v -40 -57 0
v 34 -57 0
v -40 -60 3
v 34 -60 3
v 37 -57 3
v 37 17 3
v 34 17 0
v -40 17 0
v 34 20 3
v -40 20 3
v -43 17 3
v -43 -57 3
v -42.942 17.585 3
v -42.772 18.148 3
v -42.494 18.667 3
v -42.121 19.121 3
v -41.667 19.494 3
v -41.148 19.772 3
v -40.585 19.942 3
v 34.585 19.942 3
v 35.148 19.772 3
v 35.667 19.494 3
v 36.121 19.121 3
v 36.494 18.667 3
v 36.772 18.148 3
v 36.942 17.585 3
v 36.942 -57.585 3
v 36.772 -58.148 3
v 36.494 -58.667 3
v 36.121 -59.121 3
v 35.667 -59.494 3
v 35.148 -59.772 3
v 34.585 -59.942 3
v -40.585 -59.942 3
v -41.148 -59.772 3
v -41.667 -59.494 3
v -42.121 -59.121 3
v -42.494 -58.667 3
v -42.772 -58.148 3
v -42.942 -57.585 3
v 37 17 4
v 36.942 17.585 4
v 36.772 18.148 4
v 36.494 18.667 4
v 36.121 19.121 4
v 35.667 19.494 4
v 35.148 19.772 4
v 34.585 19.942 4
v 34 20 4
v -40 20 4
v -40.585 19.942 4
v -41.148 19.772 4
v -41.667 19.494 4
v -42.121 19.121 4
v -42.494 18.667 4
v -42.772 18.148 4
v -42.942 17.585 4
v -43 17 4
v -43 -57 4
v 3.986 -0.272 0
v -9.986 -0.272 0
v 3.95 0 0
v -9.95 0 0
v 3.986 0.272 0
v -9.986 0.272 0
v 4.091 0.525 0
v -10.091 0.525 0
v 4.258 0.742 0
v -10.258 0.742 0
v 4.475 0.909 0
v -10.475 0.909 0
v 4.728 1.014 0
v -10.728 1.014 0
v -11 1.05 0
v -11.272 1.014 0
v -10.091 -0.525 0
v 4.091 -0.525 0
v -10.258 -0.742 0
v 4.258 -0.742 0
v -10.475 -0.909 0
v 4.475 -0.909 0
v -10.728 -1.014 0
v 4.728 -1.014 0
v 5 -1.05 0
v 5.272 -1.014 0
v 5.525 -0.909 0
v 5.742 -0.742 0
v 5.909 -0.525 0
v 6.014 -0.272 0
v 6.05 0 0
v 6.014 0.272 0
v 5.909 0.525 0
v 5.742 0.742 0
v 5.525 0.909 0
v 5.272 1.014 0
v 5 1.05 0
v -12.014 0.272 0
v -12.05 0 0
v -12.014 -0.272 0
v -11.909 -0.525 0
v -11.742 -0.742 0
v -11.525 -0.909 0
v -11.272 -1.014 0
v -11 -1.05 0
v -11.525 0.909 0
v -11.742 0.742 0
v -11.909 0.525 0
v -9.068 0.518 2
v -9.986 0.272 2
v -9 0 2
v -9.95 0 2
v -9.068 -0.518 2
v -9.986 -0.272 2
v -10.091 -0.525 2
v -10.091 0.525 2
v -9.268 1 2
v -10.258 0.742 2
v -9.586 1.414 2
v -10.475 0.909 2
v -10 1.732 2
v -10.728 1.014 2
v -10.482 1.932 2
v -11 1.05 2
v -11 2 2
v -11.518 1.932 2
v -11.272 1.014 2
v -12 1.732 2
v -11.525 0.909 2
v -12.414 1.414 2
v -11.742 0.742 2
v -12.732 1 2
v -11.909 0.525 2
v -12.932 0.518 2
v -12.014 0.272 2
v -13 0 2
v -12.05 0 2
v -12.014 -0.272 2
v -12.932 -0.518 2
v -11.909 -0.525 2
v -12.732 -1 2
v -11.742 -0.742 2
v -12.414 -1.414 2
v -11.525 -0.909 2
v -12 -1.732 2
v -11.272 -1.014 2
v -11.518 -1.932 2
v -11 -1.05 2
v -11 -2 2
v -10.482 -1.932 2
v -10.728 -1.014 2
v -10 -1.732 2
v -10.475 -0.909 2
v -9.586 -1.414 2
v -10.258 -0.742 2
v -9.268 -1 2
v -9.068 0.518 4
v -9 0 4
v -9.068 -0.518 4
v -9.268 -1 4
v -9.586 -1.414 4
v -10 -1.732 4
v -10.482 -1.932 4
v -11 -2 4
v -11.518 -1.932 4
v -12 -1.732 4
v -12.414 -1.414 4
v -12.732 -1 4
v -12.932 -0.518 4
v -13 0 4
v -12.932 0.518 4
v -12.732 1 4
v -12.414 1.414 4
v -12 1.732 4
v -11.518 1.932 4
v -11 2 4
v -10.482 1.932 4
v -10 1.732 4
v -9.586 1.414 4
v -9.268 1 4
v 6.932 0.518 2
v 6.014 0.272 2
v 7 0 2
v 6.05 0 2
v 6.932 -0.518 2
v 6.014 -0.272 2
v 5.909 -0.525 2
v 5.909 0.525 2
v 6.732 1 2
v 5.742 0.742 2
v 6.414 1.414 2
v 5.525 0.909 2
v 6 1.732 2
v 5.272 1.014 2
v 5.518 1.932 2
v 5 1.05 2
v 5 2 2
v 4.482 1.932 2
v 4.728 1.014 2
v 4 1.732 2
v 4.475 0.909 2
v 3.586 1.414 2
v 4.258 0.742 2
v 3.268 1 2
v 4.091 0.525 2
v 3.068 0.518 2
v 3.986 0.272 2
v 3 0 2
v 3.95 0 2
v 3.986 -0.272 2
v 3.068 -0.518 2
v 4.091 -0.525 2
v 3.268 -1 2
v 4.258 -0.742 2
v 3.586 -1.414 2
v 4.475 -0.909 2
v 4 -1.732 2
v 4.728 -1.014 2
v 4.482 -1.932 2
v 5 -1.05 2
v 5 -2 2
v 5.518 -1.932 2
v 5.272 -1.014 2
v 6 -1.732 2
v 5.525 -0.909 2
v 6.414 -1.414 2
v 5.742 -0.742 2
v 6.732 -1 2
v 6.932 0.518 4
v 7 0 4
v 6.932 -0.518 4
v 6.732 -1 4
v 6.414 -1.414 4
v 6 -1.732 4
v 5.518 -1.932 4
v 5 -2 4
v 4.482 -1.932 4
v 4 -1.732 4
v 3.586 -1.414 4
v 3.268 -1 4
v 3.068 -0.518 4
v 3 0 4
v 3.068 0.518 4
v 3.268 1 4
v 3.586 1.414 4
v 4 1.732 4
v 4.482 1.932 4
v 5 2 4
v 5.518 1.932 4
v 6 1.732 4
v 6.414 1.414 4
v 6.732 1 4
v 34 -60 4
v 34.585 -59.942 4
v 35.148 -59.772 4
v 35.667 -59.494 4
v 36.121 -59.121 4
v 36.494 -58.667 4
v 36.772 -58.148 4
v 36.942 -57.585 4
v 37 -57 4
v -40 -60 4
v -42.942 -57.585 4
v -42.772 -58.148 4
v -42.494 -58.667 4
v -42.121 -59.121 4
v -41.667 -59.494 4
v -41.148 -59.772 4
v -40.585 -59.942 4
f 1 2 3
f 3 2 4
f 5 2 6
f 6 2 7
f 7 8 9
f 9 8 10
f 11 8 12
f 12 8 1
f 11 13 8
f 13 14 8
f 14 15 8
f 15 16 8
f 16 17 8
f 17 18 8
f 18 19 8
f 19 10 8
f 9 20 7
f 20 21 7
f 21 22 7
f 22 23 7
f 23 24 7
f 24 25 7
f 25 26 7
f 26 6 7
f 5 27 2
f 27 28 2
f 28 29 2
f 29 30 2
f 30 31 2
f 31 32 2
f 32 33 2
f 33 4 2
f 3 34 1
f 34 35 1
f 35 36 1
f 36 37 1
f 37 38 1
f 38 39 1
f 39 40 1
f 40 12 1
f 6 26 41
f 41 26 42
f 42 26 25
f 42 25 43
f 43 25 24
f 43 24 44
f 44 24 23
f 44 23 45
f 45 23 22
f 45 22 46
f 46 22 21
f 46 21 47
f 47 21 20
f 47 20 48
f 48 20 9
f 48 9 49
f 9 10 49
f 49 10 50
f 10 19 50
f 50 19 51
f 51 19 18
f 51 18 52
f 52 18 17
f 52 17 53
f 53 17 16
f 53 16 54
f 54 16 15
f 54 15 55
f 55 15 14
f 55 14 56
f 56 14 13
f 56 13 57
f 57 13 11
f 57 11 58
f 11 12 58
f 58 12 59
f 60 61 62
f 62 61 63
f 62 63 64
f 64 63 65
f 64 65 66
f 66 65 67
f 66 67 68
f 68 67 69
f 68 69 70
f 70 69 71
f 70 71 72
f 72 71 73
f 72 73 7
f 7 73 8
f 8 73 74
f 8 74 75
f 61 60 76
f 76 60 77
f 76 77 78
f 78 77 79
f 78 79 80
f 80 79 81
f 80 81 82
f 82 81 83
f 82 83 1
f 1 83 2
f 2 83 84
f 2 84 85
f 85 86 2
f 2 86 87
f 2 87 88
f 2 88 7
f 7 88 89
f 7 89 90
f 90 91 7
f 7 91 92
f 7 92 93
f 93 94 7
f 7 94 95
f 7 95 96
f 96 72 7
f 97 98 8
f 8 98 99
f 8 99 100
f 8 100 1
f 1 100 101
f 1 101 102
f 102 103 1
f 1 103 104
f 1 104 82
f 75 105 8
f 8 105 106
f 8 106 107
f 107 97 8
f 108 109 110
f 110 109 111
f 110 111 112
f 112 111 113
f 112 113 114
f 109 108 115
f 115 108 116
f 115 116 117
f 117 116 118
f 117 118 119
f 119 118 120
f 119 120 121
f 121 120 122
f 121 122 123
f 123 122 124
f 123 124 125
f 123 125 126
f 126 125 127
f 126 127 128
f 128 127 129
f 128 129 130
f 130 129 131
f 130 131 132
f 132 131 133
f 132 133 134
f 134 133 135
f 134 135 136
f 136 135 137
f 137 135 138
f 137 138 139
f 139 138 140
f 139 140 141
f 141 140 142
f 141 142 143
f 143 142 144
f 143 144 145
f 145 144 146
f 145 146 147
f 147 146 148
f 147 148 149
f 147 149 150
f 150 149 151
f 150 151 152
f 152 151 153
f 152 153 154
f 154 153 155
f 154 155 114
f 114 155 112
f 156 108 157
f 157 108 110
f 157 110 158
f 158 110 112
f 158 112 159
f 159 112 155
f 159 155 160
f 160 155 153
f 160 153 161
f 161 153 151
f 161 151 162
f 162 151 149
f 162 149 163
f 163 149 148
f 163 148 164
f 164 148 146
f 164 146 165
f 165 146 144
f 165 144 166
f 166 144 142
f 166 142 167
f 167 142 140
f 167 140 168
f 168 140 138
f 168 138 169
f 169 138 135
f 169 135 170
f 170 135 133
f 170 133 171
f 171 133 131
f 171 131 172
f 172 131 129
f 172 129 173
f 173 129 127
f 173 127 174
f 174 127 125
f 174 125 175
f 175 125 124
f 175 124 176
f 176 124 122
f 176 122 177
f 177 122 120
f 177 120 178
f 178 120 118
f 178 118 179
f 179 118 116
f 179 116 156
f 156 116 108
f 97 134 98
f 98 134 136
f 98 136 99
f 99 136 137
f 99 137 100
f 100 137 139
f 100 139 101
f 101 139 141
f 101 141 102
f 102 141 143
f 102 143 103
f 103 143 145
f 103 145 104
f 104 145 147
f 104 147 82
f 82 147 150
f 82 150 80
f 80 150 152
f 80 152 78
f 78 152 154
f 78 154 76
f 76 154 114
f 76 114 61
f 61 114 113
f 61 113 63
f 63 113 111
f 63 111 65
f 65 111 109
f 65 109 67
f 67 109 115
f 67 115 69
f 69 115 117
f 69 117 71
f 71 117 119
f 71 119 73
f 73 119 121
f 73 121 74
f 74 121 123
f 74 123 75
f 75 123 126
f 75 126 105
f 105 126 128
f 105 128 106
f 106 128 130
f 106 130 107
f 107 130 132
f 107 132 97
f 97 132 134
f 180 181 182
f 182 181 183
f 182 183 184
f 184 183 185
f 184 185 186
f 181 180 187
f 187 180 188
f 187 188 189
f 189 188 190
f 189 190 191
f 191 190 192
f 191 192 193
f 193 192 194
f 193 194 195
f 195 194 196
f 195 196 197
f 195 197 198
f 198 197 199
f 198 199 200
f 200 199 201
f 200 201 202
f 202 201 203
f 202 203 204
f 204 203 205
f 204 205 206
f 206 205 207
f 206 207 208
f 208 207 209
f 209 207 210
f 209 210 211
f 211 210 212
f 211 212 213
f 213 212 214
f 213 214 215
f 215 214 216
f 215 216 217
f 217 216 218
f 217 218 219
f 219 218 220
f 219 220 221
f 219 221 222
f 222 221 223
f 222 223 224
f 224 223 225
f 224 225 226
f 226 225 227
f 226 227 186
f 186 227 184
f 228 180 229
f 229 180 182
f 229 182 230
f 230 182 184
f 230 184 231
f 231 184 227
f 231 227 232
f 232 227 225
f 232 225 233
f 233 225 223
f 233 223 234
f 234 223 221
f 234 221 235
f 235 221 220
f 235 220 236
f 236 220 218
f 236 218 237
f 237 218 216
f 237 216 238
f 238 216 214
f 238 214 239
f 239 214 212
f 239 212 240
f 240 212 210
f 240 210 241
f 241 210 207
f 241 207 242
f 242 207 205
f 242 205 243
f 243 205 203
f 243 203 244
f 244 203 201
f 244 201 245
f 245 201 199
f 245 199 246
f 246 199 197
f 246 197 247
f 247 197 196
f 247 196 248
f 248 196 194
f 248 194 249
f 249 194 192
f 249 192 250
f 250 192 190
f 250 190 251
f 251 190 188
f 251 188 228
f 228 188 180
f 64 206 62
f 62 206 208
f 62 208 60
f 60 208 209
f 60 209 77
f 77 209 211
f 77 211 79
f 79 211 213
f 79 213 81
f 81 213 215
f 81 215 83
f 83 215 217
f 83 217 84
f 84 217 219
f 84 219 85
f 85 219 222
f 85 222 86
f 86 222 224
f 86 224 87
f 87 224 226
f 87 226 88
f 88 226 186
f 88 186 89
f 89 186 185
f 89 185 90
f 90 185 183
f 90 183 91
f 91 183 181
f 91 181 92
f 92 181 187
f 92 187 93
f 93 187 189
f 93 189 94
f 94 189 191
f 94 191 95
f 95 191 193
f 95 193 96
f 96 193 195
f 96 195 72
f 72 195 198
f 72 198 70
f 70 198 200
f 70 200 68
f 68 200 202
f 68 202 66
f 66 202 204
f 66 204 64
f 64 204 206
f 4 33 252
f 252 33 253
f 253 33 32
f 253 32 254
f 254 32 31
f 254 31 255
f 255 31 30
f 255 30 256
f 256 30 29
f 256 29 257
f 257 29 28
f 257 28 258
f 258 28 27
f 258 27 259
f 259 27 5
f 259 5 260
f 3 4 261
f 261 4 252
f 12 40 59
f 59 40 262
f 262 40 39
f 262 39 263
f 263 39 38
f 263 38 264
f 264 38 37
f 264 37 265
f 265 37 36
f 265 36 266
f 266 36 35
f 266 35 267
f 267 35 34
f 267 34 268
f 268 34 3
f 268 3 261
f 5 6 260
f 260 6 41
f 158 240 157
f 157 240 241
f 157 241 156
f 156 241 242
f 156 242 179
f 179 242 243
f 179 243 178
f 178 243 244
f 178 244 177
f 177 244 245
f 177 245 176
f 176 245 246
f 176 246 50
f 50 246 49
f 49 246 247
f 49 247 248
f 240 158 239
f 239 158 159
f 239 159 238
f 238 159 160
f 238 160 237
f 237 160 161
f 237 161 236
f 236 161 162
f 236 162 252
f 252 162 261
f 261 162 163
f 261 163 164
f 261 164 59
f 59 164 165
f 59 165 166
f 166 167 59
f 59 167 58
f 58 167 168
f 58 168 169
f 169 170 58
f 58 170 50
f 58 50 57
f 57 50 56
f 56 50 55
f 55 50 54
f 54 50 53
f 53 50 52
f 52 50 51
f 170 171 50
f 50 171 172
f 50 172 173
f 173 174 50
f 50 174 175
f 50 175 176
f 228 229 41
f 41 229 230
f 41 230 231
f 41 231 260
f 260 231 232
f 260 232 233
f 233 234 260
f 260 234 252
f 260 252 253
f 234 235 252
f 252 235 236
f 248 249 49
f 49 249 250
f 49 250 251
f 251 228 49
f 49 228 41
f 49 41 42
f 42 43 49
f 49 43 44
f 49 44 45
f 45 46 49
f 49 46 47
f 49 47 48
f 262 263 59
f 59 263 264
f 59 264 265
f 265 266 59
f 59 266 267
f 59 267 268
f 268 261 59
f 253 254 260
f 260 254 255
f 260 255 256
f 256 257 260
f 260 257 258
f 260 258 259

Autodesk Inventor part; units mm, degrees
ref_plane "YZ Plane" through (0, 0, 0) normal (1, 0, 0) x (0, 1, 0)
ref_plane "XZ Plane" through (0, 0, 0) normal (0, 1, 0) x (-1, 0, 0)
ref_plane "XY Plane" through (0, 0, 0) normal (0, 0, 1) x (1, 0, 0)
sketch "Sketch1" plane through (0, 0, 0) normal (0, 0, 1) x (1, 0, 0)
  circle A0 centre (5, 0) radius 1.1 projected
  circle A1 centre (-11, 0) radius 1.1 projected
  line L0 (-11, 0) -> (5, 0) construction
  line L1 (-43, 20) -> (37, 20)
  line L2 (-3, 22.8039) -> (-3, -25.7358) construction
  line L3 (37, 20) -> (37, -60)
  line L4 (37, -60) -> (-43, -60)
  line L5 (-43, -60) -> (-43, 20)
  point P0 (0, 0)
  point P1 (-3, 0)
  point P2 (-3, 20)
  dimension "d0" = 80
  dimension "d1" = 80
  dimension "d2" = 20
extrude "Extrusion1" add sketch "Sketch1" along normal blind 4 contours A0 | A1 | L1 L3 L4 L5
fillet "Fillet1" radius 3 4 edges at (-43, 20, 2) (-43, -60, 2) (37, -60, 2) (37, 20, 2)
sketch "Sketch2" plane through (0, 0, 4) normal (0, 0, 1) x (1, 0, 0)
  circle A0 centre (-11, 0) radius 1.1 projected
  circle A1 centre (5, 0) radius 1.1 projected
  point P0 (0, 0)
hole "Hole1" at (-11, 0, 4) at (5, 0, 4) direction (0, 0, -1) diameter 2.1 end through all counterbore diameter 4 counterbore depth 2
chamfer "Chamfer1" distance 3 angle 45 8 edges at (-43, -20, 0) (-42.1213, 19.1213, 0) (-3, 20, 0) (36.1213, 19.1213, 0) (37, -20, 0) (36.1213, -59.1213, 0) (-3, -60, 0) (-42.1213, -59.1213, 0)
equation "\"d1\" = d0"
properties part number "Touchplate"
